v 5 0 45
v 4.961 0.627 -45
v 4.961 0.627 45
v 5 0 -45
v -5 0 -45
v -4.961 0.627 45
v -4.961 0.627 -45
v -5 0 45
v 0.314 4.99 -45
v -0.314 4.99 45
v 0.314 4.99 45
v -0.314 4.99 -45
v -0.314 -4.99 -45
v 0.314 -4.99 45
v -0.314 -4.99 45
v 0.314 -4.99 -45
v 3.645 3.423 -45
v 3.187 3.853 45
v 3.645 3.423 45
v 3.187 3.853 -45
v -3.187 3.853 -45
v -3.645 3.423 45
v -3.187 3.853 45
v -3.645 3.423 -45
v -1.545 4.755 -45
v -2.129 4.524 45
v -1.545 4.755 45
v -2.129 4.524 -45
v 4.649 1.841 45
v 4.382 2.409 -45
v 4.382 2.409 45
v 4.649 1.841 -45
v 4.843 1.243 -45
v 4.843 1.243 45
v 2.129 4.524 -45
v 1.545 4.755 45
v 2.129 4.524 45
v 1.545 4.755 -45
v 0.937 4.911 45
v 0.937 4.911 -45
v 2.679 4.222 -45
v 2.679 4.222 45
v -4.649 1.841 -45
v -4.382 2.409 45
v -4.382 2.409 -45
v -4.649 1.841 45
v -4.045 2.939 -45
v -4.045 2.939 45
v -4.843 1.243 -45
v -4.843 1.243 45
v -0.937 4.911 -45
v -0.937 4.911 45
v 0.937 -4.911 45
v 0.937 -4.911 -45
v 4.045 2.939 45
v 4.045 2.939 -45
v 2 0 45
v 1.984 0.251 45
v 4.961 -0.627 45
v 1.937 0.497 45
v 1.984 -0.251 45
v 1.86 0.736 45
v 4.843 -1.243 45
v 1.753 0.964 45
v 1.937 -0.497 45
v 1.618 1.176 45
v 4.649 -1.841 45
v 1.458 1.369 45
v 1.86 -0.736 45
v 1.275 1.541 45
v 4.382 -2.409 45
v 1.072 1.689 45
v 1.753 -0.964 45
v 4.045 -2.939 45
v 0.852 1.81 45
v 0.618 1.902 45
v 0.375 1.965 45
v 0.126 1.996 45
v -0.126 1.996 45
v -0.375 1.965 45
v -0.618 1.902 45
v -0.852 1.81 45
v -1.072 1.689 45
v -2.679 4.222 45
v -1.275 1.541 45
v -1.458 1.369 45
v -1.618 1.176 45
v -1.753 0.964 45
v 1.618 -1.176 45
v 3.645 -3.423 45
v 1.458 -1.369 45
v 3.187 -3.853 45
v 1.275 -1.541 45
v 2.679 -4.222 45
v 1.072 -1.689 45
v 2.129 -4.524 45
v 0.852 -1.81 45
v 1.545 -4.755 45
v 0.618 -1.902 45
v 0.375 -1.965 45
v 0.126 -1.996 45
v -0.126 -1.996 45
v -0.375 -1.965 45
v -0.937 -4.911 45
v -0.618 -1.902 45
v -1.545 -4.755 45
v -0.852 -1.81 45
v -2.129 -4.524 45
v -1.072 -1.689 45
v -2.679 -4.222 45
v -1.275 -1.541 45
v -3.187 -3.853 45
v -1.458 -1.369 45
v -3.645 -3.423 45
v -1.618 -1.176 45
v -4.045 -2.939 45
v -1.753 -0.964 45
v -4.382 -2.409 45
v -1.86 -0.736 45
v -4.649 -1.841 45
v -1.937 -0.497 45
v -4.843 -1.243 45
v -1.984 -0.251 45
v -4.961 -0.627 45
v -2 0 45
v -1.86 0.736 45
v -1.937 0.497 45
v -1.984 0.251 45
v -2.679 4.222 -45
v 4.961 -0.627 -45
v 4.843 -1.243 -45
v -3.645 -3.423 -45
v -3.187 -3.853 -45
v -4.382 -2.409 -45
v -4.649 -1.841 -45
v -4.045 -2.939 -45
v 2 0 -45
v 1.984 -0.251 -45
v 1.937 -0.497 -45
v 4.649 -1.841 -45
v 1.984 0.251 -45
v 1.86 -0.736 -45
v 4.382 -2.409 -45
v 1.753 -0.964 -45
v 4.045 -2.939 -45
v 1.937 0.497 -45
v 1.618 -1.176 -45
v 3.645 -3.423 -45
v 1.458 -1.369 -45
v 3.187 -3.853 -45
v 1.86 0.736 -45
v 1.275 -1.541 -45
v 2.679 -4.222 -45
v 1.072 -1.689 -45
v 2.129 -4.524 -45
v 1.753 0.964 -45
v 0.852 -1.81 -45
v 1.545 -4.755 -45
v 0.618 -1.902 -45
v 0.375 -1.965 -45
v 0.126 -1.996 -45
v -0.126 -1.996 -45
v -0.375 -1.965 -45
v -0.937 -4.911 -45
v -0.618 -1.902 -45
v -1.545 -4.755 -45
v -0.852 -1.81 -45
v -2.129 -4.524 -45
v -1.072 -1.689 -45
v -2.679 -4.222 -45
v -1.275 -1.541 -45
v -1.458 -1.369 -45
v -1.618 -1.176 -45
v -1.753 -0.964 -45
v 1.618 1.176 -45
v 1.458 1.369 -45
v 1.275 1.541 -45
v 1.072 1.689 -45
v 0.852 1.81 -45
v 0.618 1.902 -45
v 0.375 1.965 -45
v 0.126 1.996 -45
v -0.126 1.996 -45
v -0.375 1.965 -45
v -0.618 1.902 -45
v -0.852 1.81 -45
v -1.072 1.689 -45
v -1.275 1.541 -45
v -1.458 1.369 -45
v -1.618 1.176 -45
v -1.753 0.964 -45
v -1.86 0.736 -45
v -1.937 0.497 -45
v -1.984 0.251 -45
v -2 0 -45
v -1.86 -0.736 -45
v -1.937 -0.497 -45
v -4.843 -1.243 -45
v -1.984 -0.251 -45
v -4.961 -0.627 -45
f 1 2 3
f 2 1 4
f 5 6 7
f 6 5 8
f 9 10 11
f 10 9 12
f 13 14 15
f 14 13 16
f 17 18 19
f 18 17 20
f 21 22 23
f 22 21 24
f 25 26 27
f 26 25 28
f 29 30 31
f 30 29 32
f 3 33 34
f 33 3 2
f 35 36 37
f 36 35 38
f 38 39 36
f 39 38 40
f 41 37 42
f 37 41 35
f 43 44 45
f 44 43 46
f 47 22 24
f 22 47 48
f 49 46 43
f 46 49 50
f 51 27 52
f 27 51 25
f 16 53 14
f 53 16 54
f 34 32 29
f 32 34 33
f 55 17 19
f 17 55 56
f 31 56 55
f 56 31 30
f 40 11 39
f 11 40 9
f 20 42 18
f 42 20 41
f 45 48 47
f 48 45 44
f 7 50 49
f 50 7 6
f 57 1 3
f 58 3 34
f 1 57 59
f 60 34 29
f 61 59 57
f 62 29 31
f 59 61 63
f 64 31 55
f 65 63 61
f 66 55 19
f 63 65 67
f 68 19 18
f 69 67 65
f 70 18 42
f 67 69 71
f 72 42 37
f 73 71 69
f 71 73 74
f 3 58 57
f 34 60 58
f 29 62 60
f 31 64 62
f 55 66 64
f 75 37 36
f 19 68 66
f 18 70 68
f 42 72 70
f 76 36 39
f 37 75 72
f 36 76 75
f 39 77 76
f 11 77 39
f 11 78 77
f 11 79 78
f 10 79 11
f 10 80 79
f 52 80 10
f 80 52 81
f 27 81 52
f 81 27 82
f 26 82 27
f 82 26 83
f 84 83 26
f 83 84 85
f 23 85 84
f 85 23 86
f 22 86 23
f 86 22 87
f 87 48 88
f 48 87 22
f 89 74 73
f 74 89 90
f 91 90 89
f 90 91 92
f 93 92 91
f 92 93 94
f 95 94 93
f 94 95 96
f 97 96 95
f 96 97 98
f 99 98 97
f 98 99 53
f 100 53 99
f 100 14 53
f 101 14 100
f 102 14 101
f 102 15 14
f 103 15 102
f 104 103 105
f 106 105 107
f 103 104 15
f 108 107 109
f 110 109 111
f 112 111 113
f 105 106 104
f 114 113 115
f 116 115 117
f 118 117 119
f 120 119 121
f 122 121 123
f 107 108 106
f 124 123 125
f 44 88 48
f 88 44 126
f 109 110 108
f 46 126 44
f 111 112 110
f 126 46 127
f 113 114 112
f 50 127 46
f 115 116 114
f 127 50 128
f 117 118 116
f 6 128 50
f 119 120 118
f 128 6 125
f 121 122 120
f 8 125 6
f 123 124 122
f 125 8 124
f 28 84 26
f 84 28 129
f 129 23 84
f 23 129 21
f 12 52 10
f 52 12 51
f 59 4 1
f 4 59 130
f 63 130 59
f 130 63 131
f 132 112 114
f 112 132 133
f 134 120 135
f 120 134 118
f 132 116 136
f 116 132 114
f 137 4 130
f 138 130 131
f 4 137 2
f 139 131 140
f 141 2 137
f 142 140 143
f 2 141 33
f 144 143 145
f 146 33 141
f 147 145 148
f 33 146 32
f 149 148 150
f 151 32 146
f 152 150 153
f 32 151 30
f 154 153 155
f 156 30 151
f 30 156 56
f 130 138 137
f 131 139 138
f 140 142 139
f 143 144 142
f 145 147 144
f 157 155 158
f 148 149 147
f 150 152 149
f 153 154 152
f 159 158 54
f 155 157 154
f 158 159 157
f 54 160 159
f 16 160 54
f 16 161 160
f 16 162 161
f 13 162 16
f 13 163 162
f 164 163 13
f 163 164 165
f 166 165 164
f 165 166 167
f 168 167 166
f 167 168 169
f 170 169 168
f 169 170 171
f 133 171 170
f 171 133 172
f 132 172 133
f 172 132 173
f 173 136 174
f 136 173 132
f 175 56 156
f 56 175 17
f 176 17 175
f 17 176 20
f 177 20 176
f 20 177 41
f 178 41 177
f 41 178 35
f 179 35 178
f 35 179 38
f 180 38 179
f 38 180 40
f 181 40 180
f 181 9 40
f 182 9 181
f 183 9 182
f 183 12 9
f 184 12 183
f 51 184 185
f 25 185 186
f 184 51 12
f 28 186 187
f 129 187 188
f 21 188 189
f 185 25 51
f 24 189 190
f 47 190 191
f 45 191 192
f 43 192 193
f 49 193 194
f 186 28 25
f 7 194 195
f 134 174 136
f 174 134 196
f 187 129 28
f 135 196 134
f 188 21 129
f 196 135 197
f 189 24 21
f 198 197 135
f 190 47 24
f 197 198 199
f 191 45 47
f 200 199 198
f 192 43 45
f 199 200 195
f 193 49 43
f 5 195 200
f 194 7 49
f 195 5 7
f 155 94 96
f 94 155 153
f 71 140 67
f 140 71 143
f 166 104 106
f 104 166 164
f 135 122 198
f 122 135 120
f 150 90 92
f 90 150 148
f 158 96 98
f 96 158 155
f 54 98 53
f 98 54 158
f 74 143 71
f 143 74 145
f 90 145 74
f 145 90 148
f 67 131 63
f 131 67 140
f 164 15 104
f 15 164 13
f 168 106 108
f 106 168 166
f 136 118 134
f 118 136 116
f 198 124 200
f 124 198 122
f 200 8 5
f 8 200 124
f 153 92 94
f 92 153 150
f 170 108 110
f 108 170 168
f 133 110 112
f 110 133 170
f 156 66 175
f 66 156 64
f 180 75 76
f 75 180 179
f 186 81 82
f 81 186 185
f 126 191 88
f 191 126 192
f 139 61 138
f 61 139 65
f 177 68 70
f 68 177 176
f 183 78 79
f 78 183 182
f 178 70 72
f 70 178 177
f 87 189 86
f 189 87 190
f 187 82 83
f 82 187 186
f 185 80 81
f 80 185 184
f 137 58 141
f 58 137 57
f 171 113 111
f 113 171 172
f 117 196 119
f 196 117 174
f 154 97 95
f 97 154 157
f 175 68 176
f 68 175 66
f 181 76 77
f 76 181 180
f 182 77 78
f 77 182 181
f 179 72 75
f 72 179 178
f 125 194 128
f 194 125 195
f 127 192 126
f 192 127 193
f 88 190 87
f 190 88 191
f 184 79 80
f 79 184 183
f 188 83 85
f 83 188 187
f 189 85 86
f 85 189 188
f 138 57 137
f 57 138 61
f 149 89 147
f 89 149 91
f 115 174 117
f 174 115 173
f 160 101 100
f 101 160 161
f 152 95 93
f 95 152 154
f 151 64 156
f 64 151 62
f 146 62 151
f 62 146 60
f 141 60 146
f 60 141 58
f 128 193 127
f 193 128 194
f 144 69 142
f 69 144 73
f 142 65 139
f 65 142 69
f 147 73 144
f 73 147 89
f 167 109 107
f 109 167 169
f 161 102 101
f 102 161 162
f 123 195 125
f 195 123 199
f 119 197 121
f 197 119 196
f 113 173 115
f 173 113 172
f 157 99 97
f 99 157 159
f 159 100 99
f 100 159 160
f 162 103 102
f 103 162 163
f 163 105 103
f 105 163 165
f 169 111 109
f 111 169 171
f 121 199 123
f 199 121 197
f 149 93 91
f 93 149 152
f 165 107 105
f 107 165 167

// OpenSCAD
$fn = 50;


difference() {
	union() {
		translate(v = [0, 0, -45.0000000000]) {
			cylinder(h = 90, r = 5.0000000000);
		}
	}
	union() {
		translate(v = [0, 0, -100.0000000000]) {
			cylinder(h = 200, r = 2);
		}
	}
}
